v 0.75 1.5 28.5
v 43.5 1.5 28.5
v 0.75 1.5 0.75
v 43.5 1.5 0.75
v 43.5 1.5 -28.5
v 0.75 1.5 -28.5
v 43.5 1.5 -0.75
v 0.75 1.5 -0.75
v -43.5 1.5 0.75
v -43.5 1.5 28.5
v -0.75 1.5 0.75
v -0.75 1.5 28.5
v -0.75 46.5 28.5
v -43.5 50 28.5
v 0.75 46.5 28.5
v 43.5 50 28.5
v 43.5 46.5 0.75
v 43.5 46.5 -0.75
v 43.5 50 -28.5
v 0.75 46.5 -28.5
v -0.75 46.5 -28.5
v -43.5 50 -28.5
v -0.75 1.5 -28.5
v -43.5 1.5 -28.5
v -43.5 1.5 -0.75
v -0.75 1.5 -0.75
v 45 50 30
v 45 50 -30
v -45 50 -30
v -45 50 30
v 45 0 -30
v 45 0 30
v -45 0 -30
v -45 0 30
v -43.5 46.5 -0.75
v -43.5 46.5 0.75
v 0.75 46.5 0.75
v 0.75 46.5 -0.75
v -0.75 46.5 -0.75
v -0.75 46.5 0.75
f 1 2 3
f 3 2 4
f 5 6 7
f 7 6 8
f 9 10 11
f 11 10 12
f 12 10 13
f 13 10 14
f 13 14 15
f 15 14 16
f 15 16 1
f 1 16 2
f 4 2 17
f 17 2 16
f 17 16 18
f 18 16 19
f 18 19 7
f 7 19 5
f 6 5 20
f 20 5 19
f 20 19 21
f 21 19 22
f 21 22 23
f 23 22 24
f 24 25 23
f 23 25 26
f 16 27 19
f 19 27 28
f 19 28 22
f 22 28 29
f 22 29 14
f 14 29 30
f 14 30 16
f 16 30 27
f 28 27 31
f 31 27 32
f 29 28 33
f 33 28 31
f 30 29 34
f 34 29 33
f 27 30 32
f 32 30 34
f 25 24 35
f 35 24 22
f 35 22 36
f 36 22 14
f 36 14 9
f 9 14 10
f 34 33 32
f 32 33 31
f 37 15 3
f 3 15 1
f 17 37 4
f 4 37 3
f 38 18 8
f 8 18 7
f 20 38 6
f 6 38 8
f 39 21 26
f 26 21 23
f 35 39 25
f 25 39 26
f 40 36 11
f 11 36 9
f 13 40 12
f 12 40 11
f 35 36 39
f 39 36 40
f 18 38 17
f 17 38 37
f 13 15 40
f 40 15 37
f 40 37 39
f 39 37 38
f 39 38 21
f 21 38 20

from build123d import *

# Parameters (mm, degrees)
SKETCH_1_W      = 87
SKETCH_1_H      = 57
EXTRUDE_1_DEPTH = 1.5
SKETCH_1_3_W    = 90
SKETCH_1_3_H    = 60
SKETCH_1_3_W_2  = 87
SKETCH_1_3_H_2  = 57
EXTRUDE_2_DEPTH = 50
EXTRUDE_3_DEPTH = 45


with BuildPart() as part:
    # 草图1 → 凸台-拉伸1 (new body)
    with BuildSketch(Plane(origin=(0, 0, 0), x_dir=(1, 0, 0), z_dir=(0, 1, 0))):
        Rectangle(SKETCH_1_W, SKETCH_1_H)
    extrude(amount=EXTRUDE_1_DEPTH)

    # 草图1<3> → 凸台-拉伸2 (add)
    with BuildSketch(Plane(origin=(0, 0, 0), x_dir=(1, 0, 0), z_dir=(0, 1, 0))):
        Rectangle(SKETCH_1_3_W, SKETCH_1_3_H)
        Rectangle(SKETCH_1_3_W_2, SKETCH_1_3_H_2, mode=Mode.SUBTRACT)
    extrude(amount=EXTRUDE_2_DEPTH)

    # 草图2 → 凸台-拉伸3 (add)
    with BuildSketch(Plane(origin=(0, 1.5, 0), x_dir=(1, 0, 0), z_dir=(0, 1, 0))):
        Polygon((0.75, -0.75), (43.5, -0.75), (43.5, 0.75), (0.75, 0.75), (0.75, 28.5), (-0.75, 28.5), (-0.75, 0.75), (-43.5, 0.75), (-43.5, -0.75), (-0.75, -0.75), (-0.75, -28.5), (0.75, -28.5), align=None)
    extrude(amount=EXTRUDE_3_DEPTH)


solid = part.part
